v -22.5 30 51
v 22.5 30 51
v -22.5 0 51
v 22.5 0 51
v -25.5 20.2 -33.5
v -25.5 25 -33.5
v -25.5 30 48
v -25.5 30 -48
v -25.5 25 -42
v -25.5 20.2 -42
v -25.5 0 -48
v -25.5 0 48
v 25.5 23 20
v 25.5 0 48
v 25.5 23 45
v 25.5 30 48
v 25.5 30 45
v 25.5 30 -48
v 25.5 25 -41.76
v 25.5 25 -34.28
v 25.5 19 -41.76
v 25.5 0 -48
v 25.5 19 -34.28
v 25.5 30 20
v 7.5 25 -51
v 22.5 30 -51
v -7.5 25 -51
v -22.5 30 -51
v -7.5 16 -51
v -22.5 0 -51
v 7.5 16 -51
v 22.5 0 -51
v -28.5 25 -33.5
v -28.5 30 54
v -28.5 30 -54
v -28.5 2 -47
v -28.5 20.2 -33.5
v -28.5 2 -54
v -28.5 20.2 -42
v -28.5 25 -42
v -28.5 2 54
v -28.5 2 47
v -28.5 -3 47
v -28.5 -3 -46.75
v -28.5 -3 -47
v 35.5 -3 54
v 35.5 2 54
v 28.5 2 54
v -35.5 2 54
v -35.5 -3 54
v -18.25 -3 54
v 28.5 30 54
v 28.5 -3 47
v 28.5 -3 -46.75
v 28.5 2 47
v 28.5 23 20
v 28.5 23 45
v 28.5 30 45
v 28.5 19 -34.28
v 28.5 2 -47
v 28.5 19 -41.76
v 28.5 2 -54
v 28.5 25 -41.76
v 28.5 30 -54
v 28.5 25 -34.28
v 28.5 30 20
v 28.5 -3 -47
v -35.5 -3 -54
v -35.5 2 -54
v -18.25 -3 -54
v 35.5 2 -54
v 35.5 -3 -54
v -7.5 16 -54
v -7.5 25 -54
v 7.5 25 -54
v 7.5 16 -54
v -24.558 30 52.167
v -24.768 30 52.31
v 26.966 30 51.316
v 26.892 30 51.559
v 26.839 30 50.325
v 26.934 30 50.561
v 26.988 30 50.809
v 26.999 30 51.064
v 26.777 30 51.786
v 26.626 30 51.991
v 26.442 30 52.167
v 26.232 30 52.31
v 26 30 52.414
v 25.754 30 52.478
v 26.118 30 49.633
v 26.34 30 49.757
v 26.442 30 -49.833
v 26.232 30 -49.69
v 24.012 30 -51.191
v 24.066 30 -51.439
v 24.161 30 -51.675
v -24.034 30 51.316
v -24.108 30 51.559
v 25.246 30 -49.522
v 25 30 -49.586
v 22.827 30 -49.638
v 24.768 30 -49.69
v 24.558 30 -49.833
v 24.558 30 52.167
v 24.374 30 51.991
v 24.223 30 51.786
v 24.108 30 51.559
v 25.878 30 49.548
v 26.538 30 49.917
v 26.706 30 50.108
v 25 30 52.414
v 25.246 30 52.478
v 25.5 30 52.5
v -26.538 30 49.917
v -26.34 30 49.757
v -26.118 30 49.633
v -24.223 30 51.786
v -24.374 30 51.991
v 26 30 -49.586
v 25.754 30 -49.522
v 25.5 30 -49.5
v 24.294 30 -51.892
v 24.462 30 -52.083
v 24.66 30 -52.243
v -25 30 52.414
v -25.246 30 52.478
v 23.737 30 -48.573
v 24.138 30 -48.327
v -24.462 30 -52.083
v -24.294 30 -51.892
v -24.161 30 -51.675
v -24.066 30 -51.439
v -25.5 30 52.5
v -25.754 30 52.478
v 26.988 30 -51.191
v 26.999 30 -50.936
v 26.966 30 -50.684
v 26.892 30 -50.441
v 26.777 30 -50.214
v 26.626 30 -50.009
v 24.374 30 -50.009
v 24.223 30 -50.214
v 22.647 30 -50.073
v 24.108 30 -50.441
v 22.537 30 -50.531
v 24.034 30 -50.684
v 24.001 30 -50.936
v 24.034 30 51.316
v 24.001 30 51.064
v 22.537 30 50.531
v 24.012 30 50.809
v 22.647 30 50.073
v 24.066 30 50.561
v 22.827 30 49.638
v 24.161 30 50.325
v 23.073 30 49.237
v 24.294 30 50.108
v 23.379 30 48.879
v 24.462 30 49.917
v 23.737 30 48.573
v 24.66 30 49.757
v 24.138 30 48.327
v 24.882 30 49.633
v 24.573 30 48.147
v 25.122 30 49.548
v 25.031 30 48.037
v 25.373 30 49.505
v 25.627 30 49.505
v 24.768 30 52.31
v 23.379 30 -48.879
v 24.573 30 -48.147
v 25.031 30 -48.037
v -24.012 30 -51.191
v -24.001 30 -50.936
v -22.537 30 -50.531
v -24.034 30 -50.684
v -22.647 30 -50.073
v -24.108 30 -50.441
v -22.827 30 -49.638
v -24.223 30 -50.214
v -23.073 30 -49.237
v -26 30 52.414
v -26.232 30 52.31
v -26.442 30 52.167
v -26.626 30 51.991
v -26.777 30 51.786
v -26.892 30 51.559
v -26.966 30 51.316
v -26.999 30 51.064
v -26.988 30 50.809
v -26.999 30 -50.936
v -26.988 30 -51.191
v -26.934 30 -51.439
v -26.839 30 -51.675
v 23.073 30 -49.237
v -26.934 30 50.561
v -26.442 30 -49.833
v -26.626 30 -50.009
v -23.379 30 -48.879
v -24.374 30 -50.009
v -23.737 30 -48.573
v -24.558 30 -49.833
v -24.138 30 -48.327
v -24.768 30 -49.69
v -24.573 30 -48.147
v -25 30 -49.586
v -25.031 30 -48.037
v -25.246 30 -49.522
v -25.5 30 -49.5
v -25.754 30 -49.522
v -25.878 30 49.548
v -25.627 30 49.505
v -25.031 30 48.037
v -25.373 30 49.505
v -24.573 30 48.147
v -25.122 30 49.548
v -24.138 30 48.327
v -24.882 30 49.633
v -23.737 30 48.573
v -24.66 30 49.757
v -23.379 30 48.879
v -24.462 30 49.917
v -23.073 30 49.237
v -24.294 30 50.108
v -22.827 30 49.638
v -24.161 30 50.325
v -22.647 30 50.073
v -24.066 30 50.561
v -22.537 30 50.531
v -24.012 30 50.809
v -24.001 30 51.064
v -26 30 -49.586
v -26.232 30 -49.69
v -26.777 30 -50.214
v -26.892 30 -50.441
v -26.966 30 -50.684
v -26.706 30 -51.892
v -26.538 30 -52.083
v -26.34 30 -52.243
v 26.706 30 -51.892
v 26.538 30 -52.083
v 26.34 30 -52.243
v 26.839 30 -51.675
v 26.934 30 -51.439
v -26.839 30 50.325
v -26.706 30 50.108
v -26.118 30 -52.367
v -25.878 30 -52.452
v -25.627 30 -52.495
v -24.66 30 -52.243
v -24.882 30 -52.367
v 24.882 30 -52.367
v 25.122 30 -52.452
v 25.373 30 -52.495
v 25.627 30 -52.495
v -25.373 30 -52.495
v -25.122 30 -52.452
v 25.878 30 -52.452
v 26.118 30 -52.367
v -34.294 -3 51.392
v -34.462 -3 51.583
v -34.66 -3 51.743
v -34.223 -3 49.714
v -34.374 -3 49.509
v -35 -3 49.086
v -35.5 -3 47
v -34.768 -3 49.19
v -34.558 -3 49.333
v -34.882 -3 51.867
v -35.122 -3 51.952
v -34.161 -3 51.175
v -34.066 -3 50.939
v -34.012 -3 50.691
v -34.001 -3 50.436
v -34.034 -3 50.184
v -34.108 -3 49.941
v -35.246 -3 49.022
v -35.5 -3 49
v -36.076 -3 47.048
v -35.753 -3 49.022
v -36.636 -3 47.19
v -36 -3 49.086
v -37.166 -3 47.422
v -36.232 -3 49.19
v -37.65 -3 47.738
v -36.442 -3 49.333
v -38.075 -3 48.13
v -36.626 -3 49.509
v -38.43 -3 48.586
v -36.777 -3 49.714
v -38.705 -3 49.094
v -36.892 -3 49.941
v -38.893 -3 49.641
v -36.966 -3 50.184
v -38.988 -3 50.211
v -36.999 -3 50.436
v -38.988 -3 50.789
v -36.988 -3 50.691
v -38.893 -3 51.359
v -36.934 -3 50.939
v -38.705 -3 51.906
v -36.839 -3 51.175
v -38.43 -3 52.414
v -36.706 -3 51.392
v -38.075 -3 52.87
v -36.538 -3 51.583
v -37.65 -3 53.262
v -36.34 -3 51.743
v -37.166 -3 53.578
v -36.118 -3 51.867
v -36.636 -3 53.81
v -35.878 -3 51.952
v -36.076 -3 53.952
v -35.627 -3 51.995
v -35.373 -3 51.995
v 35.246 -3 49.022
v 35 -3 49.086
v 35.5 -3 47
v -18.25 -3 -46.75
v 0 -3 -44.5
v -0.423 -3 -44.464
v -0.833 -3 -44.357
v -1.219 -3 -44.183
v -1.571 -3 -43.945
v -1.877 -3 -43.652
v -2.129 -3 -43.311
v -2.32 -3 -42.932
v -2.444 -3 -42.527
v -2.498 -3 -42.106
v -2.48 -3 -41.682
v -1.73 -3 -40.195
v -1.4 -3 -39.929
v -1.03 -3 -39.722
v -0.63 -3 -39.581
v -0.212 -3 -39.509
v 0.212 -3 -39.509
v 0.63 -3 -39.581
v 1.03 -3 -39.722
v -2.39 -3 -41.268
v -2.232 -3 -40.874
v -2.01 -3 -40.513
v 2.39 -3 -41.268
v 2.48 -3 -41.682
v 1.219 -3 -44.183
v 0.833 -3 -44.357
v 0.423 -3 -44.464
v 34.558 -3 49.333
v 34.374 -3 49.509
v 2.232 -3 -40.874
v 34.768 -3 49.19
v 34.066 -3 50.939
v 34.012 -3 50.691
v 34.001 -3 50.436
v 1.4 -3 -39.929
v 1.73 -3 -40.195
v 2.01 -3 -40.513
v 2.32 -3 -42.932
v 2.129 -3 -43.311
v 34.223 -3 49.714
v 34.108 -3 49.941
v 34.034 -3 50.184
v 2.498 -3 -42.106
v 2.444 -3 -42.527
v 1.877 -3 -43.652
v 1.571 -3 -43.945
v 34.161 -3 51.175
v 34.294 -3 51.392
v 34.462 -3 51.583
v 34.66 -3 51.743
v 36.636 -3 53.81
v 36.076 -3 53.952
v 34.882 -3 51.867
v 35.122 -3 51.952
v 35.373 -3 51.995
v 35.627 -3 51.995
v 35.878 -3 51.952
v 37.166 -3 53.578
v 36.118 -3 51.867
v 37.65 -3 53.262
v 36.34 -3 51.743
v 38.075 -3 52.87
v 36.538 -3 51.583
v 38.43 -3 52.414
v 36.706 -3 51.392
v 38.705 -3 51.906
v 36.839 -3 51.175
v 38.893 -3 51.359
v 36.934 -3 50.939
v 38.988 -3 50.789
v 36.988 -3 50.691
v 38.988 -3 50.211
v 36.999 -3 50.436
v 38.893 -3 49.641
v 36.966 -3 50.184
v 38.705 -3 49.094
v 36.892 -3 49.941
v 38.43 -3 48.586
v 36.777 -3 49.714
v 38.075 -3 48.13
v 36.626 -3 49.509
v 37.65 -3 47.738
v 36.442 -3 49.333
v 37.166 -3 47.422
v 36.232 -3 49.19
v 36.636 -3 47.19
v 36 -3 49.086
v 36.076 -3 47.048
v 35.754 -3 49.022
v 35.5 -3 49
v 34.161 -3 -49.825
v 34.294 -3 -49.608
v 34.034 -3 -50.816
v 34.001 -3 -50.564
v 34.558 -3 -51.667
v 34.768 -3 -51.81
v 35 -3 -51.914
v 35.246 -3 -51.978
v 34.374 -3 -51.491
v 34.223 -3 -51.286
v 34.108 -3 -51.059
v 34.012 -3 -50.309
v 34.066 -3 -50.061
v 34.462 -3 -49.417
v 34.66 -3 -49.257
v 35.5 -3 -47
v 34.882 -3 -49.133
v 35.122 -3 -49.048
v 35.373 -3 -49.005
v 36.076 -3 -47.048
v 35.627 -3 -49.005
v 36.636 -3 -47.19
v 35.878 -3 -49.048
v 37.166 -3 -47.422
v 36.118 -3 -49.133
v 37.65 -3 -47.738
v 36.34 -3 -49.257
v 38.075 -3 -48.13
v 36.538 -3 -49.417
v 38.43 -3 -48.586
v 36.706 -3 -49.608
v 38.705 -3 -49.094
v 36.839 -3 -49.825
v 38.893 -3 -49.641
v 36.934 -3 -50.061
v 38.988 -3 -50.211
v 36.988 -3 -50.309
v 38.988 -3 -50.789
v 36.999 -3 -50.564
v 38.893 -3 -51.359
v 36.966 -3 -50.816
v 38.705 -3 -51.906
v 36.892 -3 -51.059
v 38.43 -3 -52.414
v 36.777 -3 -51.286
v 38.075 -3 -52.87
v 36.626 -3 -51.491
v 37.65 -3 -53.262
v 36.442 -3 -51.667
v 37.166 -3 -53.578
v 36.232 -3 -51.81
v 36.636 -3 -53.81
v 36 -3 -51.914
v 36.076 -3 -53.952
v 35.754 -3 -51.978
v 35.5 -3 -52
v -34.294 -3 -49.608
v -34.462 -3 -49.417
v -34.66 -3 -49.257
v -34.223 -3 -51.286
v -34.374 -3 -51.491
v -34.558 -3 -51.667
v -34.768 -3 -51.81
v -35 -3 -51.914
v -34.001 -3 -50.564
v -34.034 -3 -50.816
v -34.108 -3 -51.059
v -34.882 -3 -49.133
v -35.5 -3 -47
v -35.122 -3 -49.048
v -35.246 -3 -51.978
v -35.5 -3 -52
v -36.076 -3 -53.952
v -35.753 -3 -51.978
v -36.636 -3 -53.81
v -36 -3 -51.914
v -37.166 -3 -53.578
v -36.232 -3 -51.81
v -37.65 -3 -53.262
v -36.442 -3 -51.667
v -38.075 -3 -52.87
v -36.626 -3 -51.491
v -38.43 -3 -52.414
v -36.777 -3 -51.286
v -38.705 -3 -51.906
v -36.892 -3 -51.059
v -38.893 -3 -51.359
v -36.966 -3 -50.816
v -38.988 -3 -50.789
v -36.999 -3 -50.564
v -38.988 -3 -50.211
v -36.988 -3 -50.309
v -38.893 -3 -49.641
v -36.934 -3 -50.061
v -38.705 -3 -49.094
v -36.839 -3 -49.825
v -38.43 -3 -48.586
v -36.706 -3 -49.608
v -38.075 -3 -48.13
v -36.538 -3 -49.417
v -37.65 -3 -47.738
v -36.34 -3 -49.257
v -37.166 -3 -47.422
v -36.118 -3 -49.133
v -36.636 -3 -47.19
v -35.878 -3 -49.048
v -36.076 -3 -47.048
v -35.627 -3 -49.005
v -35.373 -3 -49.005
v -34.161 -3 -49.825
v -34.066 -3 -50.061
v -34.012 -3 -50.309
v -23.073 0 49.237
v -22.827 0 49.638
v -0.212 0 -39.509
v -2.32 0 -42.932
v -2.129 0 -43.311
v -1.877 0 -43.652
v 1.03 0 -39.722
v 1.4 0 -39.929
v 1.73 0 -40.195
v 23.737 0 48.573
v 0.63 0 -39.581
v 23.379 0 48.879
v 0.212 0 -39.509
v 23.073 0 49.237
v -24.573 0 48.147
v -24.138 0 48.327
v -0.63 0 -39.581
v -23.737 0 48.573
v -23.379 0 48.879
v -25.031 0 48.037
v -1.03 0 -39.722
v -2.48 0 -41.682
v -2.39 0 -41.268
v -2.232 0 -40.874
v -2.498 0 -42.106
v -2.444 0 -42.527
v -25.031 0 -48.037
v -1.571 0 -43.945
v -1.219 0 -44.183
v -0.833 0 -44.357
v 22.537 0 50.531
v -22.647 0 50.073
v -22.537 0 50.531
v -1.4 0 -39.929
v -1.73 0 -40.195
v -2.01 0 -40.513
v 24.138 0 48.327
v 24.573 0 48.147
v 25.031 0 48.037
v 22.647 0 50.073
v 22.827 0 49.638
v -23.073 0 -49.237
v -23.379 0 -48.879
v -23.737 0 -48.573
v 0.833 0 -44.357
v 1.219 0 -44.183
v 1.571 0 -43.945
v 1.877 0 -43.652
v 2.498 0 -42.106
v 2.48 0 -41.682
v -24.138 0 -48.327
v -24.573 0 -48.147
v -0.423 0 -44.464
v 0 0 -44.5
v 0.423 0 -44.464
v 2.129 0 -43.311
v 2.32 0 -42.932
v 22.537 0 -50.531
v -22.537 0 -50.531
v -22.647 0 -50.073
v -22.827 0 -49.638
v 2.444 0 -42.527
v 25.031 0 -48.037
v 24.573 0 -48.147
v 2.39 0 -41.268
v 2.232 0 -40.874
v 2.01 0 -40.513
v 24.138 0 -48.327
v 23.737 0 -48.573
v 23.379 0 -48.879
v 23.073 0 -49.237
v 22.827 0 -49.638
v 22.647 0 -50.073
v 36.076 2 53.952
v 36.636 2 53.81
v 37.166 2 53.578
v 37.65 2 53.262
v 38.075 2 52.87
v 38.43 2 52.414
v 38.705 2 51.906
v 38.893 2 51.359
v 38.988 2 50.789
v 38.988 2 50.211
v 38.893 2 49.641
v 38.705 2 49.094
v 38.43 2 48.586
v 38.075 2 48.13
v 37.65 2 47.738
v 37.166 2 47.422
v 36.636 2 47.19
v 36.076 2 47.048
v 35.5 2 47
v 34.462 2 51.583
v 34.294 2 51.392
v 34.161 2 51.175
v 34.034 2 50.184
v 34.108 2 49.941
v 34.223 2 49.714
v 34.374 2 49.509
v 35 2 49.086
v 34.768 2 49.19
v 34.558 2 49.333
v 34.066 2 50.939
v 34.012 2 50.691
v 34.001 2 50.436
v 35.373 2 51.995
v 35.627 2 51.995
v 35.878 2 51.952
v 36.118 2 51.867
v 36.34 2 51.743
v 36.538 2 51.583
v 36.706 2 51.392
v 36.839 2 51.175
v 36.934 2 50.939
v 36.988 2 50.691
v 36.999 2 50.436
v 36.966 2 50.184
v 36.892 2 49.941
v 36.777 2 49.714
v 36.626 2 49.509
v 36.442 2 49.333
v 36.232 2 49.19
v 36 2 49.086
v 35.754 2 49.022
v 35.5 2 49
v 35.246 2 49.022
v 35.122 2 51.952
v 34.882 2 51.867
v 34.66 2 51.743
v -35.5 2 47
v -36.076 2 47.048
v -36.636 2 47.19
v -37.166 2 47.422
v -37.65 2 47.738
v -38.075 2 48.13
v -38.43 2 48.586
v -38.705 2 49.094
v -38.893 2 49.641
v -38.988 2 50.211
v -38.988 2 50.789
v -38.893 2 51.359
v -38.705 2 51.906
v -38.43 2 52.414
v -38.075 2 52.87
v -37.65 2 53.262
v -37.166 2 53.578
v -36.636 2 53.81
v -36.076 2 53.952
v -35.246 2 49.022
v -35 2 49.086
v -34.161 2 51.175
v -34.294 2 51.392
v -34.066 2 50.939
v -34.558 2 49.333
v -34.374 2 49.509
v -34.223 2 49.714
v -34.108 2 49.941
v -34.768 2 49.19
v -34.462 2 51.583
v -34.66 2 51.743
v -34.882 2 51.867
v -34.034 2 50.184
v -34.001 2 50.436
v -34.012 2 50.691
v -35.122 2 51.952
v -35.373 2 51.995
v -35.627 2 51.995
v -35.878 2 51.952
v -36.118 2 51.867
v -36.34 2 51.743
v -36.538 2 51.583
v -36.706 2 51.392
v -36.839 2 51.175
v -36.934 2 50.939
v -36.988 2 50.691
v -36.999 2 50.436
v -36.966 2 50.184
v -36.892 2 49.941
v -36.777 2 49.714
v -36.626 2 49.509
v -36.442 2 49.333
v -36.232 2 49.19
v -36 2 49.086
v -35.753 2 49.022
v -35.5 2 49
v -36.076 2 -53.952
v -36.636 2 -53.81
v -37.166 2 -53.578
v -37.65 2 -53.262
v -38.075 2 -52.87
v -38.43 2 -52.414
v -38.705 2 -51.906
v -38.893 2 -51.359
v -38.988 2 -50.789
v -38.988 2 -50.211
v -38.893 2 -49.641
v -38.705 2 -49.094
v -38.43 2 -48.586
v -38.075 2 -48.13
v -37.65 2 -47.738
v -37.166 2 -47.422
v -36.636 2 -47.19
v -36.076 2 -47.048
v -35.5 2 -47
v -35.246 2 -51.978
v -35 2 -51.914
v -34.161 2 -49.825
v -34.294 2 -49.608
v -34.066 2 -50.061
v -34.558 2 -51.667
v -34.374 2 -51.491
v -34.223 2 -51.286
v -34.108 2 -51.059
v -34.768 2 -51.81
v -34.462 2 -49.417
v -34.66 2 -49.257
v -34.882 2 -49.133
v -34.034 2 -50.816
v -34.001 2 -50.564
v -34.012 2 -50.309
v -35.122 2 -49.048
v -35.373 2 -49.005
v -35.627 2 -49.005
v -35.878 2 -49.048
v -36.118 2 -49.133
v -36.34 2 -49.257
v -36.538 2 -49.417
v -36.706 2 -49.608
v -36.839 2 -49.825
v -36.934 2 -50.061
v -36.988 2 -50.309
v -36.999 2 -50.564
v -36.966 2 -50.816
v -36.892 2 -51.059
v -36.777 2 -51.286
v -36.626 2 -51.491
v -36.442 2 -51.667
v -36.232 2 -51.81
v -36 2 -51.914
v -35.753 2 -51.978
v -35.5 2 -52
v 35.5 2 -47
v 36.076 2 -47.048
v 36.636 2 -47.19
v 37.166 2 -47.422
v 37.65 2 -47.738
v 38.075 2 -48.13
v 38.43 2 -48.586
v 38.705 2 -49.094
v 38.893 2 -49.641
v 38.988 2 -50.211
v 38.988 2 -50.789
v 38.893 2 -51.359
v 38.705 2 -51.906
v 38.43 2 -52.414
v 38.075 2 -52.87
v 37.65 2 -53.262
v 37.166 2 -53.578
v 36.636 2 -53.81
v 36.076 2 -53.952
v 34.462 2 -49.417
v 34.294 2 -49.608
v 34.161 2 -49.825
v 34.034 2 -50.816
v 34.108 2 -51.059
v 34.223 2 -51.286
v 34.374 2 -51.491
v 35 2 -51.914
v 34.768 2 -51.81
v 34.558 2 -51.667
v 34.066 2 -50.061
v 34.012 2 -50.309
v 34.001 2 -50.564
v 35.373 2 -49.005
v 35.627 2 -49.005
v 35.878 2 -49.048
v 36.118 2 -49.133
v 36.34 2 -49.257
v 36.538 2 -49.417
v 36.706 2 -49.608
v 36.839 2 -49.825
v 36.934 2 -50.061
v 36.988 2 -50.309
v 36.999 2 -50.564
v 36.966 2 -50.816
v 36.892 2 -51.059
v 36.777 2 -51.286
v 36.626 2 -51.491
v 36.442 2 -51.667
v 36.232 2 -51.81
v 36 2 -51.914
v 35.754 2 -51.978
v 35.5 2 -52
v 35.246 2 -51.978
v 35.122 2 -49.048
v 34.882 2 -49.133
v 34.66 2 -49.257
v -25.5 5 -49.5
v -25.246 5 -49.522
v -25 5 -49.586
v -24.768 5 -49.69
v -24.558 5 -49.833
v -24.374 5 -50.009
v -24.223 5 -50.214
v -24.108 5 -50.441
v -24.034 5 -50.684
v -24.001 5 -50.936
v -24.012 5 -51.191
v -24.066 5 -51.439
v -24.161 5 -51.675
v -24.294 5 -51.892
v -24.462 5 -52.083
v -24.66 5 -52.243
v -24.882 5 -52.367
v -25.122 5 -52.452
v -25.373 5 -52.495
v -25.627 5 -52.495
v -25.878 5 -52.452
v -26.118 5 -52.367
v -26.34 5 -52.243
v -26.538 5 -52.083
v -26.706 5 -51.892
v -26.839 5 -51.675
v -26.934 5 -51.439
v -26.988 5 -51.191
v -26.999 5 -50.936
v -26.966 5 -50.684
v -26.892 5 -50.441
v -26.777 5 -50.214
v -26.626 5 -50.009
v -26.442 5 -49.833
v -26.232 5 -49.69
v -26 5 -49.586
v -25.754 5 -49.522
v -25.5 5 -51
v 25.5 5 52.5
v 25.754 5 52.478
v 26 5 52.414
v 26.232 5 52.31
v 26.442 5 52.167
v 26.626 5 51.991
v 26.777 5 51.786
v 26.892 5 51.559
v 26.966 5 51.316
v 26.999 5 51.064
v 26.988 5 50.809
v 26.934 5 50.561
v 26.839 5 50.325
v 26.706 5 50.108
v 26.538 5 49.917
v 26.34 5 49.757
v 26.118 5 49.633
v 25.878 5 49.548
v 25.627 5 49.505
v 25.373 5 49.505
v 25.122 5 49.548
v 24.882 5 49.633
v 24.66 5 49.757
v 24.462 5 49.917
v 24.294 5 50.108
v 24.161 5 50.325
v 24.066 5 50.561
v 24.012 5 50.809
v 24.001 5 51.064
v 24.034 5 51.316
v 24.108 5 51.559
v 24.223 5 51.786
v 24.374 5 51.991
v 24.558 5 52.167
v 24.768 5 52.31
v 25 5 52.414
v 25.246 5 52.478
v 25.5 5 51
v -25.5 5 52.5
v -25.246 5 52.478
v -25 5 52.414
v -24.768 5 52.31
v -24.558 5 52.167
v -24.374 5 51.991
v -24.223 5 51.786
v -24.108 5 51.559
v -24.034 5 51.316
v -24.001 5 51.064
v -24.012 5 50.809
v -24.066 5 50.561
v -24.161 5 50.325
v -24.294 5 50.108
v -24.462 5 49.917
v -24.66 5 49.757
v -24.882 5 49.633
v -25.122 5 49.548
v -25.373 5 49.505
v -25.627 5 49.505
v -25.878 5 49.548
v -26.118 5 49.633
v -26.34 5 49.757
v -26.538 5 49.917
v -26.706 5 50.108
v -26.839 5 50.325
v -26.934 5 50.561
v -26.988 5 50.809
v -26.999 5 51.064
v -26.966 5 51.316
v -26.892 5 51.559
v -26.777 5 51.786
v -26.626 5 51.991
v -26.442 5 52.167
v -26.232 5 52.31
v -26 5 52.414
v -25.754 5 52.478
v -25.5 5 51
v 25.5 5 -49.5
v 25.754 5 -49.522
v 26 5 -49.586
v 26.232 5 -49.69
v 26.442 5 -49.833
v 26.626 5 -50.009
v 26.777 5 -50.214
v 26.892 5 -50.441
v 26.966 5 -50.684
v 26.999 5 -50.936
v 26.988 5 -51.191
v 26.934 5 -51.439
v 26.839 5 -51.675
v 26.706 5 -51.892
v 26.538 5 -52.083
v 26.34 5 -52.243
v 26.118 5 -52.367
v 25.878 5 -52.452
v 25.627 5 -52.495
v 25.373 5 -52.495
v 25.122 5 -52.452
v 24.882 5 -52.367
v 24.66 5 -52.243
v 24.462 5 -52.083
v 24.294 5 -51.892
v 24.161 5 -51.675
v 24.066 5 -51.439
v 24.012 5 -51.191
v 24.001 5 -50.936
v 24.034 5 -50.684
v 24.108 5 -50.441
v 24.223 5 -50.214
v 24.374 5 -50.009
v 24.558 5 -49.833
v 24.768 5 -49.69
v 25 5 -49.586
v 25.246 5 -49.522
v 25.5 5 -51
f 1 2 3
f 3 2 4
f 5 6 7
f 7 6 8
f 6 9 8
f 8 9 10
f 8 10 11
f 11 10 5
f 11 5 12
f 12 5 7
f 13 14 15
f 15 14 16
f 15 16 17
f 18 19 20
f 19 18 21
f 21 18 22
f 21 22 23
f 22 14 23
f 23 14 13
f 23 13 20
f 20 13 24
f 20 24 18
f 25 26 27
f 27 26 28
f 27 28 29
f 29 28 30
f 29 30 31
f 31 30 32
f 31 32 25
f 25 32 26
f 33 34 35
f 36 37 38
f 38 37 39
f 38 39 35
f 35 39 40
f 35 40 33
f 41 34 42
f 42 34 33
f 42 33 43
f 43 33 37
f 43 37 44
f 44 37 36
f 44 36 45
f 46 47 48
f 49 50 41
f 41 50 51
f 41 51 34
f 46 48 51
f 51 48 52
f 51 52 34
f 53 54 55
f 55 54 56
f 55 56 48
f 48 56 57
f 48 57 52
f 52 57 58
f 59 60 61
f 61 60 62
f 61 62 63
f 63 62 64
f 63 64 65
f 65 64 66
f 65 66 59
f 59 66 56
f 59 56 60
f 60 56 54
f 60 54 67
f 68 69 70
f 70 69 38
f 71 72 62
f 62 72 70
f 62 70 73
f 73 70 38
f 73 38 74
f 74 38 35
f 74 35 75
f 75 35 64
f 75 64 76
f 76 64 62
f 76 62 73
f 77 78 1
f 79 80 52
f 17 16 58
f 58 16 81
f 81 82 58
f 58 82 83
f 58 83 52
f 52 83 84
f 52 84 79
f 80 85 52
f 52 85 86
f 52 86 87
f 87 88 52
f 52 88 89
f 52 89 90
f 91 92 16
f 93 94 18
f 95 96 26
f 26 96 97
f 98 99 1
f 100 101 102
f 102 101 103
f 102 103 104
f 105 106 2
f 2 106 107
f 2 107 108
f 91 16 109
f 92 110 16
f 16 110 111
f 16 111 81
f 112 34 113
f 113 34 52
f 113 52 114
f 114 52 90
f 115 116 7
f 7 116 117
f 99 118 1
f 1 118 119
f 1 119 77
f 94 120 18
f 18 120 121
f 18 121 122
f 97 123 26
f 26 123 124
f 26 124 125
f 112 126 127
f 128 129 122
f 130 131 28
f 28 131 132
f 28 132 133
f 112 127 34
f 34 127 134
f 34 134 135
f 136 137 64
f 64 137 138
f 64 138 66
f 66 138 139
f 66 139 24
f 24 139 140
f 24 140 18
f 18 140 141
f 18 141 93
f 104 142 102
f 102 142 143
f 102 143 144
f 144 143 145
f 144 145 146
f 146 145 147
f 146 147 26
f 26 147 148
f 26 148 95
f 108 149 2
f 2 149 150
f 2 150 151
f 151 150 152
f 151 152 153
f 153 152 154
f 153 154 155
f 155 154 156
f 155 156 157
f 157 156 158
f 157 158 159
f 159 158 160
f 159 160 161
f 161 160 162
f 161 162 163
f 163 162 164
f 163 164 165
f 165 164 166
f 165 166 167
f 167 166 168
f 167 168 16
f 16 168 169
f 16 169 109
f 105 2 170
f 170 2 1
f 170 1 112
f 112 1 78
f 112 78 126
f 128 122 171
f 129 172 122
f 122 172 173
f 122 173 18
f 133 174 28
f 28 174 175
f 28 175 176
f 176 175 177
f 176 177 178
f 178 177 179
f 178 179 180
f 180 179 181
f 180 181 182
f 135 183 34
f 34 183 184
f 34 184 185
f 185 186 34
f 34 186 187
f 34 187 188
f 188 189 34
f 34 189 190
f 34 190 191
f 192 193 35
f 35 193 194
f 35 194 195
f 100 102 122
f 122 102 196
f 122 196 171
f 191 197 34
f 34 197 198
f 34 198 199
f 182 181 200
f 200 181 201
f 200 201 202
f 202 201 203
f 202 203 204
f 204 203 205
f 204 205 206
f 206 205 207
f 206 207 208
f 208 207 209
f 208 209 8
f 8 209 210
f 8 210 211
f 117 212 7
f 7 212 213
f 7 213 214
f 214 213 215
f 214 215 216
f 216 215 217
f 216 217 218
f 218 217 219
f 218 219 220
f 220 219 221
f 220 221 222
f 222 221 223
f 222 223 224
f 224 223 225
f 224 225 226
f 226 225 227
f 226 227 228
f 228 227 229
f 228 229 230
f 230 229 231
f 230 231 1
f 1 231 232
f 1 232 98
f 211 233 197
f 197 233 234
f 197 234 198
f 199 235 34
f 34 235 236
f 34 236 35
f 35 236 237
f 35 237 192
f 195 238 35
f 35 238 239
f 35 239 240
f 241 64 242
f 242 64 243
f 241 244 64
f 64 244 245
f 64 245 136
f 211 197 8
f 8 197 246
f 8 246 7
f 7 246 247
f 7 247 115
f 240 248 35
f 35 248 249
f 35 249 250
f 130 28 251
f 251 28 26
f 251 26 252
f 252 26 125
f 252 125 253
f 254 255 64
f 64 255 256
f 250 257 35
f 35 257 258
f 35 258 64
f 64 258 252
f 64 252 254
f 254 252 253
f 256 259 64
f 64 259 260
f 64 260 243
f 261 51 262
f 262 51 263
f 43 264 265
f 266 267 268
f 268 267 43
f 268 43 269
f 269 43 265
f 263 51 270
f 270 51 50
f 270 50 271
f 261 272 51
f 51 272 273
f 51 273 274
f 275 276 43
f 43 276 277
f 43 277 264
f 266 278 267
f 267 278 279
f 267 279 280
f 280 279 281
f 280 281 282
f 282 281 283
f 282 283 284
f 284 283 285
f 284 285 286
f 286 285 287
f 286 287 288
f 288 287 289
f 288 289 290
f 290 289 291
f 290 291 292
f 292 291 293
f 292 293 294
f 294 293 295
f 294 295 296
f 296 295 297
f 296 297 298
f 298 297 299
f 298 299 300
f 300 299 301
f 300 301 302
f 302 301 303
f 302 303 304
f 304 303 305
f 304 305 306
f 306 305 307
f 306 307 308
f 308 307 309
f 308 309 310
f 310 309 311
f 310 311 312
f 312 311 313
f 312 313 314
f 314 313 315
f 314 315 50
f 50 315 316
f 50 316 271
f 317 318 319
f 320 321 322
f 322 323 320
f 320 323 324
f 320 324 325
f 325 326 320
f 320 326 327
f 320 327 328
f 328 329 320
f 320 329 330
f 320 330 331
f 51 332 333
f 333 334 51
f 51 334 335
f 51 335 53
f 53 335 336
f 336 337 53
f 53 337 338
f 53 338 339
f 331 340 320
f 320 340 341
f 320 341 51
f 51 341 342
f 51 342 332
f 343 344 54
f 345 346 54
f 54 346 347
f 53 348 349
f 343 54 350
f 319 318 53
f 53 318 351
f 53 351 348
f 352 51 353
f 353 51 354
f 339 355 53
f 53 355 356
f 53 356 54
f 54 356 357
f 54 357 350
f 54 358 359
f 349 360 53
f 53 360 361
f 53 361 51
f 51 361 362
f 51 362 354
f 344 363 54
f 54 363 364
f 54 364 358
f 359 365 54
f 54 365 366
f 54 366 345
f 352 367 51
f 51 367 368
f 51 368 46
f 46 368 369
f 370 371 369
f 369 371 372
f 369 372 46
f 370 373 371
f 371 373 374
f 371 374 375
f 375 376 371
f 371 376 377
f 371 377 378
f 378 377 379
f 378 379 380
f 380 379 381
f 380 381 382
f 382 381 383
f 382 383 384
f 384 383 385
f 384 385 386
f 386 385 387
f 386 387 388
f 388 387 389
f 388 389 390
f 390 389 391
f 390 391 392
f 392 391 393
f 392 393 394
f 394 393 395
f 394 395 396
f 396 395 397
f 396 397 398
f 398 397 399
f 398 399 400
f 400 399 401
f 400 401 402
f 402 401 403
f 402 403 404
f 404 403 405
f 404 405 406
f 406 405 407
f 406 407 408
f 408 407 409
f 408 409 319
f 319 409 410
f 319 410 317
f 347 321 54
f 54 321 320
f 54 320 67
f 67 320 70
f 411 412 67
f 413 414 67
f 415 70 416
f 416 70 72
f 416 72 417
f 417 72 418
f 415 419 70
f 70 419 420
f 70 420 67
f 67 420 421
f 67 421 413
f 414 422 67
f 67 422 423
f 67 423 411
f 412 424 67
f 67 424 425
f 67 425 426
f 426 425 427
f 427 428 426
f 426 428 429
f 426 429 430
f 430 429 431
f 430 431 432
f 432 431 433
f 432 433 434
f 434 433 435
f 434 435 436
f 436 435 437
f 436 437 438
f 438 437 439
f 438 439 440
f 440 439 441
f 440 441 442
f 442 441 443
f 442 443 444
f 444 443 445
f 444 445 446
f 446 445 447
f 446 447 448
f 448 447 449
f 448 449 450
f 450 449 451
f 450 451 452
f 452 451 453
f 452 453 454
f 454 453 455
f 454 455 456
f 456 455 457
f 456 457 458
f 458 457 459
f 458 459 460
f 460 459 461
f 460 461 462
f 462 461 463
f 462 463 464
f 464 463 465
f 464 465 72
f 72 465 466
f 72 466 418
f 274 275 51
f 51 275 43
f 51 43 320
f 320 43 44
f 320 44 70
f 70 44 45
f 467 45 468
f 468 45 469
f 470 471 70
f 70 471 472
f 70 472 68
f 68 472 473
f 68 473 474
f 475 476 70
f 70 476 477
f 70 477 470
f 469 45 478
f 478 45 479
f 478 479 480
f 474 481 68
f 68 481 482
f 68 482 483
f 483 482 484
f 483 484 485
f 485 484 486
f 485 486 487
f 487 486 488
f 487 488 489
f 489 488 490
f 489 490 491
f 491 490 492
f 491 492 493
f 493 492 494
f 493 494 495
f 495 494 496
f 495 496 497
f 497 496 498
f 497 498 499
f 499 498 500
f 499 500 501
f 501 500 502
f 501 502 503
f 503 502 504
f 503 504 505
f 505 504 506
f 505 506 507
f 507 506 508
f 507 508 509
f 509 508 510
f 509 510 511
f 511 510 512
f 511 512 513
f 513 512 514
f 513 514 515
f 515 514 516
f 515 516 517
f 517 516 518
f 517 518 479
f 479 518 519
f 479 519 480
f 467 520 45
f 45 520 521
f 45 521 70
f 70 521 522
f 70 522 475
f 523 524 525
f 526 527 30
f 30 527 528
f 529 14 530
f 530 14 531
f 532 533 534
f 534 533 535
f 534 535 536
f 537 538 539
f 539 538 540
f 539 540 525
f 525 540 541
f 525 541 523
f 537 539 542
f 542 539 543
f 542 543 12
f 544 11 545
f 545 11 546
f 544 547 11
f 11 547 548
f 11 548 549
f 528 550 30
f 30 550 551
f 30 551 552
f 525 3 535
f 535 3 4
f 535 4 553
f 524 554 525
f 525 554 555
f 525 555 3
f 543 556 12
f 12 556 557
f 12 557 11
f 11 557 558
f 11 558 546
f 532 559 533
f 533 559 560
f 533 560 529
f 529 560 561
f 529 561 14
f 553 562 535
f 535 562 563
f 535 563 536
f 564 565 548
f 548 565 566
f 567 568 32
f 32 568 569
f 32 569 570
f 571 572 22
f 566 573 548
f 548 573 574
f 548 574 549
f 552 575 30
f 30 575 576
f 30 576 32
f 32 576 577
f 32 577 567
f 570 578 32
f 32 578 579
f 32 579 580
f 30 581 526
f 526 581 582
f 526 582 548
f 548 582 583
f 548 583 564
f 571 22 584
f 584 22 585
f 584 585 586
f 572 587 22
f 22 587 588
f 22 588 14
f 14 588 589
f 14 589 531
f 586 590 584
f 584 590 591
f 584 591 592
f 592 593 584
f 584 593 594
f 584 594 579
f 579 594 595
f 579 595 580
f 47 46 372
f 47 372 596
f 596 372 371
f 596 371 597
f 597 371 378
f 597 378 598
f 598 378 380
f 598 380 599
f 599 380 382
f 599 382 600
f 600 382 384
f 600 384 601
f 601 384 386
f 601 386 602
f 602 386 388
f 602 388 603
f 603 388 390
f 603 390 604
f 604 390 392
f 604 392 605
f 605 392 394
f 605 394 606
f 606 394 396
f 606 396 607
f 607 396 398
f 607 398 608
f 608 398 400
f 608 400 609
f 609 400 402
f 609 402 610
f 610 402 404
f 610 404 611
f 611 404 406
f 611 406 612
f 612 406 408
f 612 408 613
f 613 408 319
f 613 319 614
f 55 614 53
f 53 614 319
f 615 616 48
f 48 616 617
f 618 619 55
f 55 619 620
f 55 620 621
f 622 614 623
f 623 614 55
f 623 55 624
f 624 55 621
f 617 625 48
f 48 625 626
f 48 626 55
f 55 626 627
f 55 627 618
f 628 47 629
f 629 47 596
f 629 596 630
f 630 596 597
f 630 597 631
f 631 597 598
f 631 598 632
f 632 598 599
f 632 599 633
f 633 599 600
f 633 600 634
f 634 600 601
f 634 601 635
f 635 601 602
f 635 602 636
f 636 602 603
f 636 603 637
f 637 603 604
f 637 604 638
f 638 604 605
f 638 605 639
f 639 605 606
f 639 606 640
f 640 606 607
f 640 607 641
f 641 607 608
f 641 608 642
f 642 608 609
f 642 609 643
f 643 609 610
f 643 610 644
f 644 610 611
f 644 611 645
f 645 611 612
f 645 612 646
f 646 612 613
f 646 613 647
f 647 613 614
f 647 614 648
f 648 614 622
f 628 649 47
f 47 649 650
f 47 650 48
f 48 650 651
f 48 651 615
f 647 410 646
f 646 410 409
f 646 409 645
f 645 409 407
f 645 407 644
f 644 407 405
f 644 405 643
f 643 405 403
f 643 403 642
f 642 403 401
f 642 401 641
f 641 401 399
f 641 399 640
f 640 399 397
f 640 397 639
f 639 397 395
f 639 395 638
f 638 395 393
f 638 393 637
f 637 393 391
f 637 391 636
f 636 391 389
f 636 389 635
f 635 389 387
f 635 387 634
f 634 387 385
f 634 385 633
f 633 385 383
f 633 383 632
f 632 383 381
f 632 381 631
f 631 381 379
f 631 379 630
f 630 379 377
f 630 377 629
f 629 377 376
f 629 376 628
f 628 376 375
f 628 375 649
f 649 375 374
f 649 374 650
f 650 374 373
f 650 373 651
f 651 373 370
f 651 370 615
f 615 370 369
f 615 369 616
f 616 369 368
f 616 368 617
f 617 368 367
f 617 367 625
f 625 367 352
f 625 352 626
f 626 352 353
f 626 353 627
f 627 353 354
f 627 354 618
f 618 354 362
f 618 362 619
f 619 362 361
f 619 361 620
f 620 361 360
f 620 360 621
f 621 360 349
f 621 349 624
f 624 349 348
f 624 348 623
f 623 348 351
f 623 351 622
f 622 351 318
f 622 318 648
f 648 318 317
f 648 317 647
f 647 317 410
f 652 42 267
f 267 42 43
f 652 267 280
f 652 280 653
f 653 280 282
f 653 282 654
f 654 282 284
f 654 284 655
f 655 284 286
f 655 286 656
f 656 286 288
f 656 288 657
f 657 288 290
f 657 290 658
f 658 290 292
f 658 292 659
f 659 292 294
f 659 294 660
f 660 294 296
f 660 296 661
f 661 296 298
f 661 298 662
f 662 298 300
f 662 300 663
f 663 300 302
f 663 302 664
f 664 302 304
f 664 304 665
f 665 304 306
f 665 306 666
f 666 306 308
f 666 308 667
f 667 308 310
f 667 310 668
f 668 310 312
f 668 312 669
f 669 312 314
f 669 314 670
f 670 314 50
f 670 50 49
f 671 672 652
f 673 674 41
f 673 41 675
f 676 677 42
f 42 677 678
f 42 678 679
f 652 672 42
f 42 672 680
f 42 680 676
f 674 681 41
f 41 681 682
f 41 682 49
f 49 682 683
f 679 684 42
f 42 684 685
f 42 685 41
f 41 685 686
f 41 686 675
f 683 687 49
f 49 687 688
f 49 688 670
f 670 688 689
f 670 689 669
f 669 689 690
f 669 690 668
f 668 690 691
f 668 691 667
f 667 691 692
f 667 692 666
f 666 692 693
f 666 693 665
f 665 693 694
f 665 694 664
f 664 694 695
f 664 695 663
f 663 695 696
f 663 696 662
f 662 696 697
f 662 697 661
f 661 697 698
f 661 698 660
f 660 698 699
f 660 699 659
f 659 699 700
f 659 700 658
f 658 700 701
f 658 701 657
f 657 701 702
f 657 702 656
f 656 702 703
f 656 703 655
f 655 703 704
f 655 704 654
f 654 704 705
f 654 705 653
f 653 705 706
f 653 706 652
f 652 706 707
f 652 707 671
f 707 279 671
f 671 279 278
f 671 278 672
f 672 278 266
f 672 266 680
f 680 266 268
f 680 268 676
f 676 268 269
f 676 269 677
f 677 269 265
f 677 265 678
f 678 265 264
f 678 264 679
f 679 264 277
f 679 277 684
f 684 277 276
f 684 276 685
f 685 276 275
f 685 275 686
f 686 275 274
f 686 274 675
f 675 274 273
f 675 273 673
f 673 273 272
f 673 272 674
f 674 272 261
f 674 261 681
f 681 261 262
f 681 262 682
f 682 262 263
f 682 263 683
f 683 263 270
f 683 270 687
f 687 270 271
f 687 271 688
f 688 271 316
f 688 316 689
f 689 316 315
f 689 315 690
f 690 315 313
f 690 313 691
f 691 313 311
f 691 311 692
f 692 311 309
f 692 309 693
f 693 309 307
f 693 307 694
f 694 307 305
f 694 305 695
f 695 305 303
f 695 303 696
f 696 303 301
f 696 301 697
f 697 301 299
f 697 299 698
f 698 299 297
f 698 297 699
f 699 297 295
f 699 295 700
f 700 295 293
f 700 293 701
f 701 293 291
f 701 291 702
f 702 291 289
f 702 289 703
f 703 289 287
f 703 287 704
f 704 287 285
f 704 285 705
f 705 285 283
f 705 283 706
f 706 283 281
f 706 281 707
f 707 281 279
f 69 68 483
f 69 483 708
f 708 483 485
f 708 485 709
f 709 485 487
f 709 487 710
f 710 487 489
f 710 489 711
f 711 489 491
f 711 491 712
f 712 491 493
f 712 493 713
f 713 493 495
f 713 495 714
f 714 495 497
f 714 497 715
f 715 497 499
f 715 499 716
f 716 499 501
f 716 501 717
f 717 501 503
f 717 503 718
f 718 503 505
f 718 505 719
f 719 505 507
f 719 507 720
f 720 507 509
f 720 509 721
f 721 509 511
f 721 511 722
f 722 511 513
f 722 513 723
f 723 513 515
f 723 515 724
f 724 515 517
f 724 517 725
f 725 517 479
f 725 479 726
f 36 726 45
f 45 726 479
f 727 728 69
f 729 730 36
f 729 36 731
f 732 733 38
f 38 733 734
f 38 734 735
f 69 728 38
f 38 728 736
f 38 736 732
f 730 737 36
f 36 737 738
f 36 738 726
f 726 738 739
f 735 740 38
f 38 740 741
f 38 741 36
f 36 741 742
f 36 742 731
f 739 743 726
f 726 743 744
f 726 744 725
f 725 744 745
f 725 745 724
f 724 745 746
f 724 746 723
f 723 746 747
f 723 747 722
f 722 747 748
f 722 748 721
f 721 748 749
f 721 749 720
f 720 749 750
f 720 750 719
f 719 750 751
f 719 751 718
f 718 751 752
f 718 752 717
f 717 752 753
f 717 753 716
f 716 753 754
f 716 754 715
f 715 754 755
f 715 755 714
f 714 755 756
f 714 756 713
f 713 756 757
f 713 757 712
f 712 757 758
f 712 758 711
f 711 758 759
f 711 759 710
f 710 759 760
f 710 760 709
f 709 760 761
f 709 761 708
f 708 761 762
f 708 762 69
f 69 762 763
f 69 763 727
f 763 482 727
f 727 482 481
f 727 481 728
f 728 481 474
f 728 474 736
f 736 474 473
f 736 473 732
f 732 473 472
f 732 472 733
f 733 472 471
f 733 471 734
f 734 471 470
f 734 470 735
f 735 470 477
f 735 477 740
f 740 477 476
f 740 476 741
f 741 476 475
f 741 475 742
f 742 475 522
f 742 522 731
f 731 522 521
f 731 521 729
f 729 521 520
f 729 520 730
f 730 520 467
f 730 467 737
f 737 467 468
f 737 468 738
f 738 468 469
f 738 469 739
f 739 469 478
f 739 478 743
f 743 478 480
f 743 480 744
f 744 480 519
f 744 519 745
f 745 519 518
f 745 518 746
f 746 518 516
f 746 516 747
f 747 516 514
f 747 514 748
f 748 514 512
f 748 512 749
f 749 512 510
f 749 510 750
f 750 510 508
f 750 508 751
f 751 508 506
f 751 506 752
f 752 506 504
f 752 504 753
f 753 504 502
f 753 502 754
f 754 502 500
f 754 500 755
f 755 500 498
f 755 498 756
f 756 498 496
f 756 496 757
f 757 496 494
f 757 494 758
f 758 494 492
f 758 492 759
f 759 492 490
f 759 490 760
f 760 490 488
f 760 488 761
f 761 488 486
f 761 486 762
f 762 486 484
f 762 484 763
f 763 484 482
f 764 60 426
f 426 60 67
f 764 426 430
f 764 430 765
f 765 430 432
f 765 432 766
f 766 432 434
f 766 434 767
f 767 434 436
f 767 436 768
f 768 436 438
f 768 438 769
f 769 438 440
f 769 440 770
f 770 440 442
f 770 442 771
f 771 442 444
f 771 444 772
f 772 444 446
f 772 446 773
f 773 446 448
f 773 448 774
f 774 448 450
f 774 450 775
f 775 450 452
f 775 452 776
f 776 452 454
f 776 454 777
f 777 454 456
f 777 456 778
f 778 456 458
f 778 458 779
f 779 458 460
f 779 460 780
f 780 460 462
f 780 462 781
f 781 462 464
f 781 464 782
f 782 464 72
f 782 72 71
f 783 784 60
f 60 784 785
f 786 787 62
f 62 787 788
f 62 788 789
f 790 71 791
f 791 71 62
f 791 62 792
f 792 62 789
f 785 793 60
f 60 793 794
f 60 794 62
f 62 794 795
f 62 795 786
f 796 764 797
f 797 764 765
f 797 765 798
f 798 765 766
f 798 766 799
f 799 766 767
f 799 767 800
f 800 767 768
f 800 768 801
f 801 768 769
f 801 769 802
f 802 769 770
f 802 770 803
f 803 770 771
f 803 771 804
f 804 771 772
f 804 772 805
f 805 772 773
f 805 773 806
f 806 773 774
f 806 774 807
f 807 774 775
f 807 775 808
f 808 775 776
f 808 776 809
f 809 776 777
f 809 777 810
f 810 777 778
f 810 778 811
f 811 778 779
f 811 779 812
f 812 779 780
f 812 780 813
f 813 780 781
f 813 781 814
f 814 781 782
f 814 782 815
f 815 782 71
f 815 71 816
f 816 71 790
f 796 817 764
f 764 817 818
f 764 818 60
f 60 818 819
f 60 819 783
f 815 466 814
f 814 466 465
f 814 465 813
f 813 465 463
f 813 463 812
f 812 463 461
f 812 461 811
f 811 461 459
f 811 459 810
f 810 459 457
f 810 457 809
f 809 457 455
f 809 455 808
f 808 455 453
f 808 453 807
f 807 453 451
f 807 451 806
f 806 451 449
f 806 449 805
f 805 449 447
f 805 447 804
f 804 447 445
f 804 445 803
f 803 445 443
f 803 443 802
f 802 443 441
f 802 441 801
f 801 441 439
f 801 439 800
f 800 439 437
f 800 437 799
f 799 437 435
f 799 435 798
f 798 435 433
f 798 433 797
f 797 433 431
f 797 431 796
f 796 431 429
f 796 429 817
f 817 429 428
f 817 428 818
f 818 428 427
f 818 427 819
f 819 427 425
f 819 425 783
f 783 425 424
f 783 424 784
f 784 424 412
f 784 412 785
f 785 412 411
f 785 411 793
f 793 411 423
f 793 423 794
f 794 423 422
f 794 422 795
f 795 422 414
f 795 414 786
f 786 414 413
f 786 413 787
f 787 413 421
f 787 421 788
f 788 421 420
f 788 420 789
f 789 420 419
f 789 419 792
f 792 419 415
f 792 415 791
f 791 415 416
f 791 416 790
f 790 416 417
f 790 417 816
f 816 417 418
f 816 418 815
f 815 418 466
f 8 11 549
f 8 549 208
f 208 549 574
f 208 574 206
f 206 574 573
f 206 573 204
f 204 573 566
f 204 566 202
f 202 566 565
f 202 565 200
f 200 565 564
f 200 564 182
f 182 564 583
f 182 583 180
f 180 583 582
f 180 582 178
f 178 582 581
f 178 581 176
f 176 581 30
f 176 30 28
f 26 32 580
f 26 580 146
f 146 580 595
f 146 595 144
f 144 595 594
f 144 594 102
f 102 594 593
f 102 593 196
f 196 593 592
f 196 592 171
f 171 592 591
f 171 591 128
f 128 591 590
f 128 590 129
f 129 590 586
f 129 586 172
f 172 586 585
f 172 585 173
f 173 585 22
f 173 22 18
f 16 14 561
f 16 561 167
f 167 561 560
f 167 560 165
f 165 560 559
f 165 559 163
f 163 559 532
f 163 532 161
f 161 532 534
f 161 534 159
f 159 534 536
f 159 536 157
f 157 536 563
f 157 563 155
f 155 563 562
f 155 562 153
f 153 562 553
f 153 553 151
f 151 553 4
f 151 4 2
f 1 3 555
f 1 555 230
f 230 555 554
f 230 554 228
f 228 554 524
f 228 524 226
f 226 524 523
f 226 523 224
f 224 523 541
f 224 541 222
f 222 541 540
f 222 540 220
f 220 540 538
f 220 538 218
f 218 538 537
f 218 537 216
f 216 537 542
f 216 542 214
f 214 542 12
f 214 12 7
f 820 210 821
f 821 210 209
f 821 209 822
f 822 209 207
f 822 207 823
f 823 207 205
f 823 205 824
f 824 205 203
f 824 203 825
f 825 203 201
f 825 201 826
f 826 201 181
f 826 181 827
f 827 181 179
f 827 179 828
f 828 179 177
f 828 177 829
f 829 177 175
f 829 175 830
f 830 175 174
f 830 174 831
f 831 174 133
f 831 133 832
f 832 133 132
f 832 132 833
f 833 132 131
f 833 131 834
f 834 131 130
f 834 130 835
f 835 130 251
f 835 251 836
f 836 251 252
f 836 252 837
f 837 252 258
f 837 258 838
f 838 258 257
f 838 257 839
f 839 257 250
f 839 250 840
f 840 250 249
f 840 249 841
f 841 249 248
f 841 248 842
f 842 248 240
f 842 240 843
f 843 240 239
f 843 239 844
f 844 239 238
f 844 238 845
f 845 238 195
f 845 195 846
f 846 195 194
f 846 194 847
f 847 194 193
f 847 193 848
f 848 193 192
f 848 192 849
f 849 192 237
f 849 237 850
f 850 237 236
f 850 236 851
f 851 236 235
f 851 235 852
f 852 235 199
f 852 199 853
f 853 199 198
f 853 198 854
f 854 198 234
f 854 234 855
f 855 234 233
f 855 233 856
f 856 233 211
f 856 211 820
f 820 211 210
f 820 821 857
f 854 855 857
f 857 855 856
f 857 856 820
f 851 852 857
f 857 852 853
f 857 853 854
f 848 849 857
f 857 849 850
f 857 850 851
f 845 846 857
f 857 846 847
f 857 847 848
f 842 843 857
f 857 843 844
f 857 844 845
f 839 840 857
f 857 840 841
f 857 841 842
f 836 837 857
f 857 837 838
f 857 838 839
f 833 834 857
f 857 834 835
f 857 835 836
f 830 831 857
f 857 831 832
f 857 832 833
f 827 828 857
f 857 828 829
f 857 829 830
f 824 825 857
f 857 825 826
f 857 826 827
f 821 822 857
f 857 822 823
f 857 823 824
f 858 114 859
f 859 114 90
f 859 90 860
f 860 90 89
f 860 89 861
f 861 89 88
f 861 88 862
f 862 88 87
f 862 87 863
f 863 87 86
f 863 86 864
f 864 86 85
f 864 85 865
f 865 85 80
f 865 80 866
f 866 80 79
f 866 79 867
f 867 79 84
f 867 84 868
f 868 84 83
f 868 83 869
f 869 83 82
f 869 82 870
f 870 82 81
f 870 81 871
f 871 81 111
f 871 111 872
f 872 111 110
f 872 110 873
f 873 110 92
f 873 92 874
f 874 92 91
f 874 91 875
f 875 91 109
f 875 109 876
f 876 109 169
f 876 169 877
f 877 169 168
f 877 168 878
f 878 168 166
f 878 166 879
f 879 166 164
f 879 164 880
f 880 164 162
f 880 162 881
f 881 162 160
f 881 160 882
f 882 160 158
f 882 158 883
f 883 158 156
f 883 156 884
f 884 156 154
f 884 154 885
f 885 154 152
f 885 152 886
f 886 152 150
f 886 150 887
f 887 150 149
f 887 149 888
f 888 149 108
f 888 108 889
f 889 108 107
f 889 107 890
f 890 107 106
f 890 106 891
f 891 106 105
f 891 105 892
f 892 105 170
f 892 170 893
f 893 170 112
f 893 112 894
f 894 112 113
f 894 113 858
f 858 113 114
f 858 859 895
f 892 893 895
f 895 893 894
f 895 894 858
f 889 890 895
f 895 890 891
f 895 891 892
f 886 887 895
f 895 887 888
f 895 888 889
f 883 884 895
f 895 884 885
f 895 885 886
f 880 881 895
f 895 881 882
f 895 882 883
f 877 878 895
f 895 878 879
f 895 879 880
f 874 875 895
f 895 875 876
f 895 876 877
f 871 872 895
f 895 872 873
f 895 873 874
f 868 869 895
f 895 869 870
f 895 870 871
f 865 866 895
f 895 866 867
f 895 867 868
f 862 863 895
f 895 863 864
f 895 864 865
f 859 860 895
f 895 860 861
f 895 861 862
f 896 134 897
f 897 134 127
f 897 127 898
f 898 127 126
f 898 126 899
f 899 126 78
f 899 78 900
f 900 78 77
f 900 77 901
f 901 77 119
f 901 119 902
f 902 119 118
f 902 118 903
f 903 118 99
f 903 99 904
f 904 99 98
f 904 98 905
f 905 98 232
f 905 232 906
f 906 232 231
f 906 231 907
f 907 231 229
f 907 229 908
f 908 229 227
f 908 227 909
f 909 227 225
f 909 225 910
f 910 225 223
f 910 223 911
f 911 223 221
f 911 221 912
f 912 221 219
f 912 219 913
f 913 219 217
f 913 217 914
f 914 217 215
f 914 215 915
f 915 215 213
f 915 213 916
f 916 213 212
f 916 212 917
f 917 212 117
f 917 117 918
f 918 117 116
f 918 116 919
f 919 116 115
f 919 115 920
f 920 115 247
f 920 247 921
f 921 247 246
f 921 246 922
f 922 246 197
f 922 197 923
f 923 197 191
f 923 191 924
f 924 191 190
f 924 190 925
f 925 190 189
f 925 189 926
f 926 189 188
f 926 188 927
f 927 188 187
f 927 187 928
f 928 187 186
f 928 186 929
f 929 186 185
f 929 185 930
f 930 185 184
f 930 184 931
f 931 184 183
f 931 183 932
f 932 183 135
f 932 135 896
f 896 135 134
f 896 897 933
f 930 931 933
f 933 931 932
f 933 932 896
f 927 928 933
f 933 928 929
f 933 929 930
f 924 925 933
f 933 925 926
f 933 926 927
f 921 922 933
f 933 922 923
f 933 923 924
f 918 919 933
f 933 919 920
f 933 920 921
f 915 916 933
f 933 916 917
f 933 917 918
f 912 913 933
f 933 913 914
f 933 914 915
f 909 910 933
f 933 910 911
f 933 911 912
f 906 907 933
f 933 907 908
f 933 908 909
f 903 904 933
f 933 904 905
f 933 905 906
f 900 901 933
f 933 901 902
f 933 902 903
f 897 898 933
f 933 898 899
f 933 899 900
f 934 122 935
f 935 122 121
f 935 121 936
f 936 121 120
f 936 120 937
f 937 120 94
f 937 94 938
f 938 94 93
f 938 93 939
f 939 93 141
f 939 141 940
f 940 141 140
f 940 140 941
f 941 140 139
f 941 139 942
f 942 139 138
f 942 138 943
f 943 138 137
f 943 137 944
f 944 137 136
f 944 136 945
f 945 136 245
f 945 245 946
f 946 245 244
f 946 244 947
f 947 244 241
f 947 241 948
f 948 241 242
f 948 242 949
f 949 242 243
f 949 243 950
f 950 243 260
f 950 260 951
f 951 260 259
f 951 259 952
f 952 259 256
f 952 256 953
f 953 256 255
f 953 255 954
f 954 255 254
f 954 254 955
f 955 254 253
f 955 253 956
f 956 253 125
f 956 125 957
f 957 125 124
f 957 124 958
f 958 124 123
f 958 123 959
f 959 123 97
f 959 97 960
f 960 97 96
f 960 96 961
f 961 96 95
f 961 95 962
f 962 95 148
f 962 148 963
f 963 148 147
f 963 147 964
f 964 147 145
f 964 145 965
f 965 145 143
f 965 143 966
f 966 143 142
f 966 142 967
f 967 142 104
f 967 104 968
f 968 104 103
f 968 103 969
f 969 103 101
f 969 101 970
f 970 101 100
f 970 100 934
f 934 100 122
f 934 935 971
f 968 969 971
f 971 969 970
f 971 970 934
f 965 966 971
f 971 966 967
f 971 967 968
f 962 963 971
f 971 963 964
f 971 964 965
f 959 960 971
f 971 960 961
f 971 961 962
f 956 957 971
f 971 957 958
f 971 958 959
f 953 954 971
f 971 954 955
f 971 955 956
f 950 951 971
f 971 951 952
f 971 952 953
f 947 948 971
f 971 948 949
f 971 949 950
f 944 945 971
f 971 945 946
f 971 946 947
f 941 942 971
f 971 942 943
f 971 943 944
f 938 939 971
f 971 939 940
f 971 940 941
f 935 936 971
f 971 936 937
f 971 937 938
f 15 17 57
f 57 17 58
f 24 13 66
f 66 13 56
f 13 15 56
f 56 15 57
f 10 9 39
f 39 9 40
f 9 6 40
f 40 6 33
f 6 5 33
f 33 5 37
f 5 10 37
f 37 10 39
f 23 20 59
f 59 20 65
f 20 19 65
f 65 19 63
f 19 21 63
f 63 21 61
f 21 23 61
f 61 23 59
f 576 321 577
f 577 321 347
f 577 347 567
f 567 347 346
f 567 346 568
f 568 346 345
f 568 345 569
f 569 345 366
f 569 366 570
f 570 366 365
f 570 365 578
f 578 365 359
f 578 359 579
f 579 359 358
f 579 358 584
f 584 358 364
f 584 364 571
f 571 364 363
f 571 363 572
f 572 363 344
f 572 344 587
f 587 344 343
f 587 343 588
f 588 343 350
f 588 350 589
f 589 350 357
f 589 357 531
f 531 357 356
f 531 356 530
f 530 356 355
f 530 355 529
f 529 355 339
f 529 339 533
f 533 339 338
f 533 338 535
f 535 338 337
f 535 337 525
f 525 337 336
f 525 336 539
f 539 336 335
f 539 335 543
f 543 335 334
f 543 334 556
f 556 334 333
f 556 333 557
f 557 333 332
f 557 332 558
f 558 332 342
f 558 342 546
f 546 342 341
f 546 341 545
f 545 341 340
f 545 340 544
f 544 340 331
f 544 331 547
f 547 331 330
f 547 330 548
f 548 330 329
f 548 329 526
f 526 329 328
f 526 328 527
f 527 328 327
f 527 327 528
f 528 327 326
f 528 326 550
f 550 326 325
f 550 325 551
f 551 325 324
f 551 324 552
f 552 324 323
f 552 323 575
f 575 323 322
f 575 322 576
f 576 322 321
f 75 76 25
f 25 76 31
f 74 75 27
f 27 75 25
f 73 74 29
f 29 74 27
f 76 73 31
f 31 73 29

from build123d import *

# Parameters (mm, degrees)
CROQUIS1_W              = 51
CROQUIS1_H              = 102
SALIENTE_EXTRUIR1_DEPTH = 30
VACIADO1_T              = 3
CROQUIS5_R              = 1.5
SALIENTE_EXTRUIR2_DEPTH = 5
CROQUIS8_R              = 3
SALIENTE_EXTRUIR3_DEPTH = 30
CROQUIS10_R             = 1.5
CORTAR_EXTRUIR1_DEPTH   = 25
CROQUIS14_W             = 25
CROQUIS14_H             = 7
CORTAR_EXTRUIR3_DEPTH   = 3
CROQUIS15_W             = 8.5
CROQUIS15_H             = 4.8
CORTAR_EXTRUIR4_DEPTH   = 3
CROQUIS16_W             = 7.48
CROQUIS16_H             = 6
CORTAR_EXTRUIR5_DEPTH   = 3
CROQUIS17_R             = 2.5
CORTAR_EXTRUIR6_DEPTH   = 3
CROQUIS18_W             = 15
CROQUIS18_H             = 9
CORTAR_EXTRUIR7_DEPTH   = 54


with BuildPart() as part:
    # Croquis1 → Saliente-Extruir1 (new body)
    with BuildSketch(Plane(origin=(0, 0, 0), x_dir=(1, 0, 0), z_dir=(0, 1, 0))):
        Rectangle(CROQUIS1_W, CROQUIS1_H)
    extrude(amount=SALIENTE_EXTRUIR1_DEPTH)

    # Vaciado1
    vaciado1_openings = [part.faces().sort_by_distance(p)[0] for p in [
        (0, 30, 0),
    ]]
    offset(amount=VACIADO1_T, openings=vaciado1_openings, kind=Kind.INTERSECTION)

    # Croquis5 → Saliente-Extruir2 (add)
    # profile 1 of 4: a face of its own
    with BuildSketch(Plane.XZ.offset(3)):
        with BuildLine():
            Line((28.5, 54), (35.5, 54))
            ThreePointArc((35.5, 54), (38.999999038, 50.49999936), (35.49999872, 47))
            Line((35.49999872, 47), (28.5, 47))
            Line((28.5, 47), (28.5, 54))
        make_face()
        with Locations(Location((35.499999038, 50.5, 0), (0, 0, 270))):
            Circle(CROQUIS5_R, mode=Mode.SUBTRACT)
    # profile 2 of 4: a face of its own
    with BuildSketch(Plane.XZ.offset(3)):
        with BuildLine():
            Line((-28.5, 54), (-35.5, 54))
            ThreePointArc((-35.5, 54), (-38.999999054, 50.499999378), (-35.499998756, 47))
            Line((-35.499998756, 47), (-28.5, 47))
            Line((-28.5, 47), (-28.5, 54))
        make_face()
        with Locations(Location((-35.499999054, 50.5, 0), (0, 0, 270))):
            Circle(CROQUIS5_R, mode=Mode.SUBTRACT)
    # profile 3 of 4: a face of its own
    with BuildSketch(Plane.XZ.offset(3)):
        with BuildLine():
            Line((-28.5, -54), (-35.5, -54))
            ThreePointArc((-35.5, -54), (-38.999999038, -50.49999936), (-35.49999872, -47))
            Line((-35.49999872, -47), (-28.5, -47))
            Line((-28.5, -47), (-28.5, -54))
        make_face()
        with Locations(Location((-35.499999038, -50.5, 0), (0, 0, 270))):
            Circle(CROQUIS5_R, mode=Mode.SUBTRACT)
    # profile 4 of 4: a face of its own
    with BuildSketch(Plane.XZ.offset(3)):
        with BuildLine():
            Line((28.5, -54), (35.5, -54))
            ThreePointArc((35.5, -54), (38.999999041, -50.499999359), (35.499998718, -47))
            Line((35.499998718, -47), (28.5, -47))
            Line((28.5, -47), (28.5, -54))
        make_face()
        with Locations(Location((35.499999041, -50.5, 0), (0, 0, 270))):
            Circle(CROQUIS5_R, mode=Mode.SUBTRACT)
    extrude(amount=-SALIENTE_EXTRUIR2_DEPTH)

    # Croquis8 → Saliente-Extruir3 (add)
    with BuildSketch(Plane(origin=(0, 0, 0), x_dir=(1, 0, 0), z_dir=(0, 1, 0))):
        with Locations((-25.5, 51)):
            Circle(CROQUIS8_R)
        with Locations((25.5, 51)):
            Circle(CROQUIS8_R)
        with Locations((25.5, -51)):
            Circle(CROQUIS8_R)
        with Locations((-25.5, -51)):
            Circle(CROQUIS8_R)
    extrude(amount=SALIENTE_EXTRUIR3_DEPTH)

    # Croquis10 → Cortar-Extruir1 (cut)
    with BuildSketch(Plane(origin=(0, 30, 0), x_dir=(1, 0, 0), z_dir=(0, 1, 0))):
        with Locations(Location((-25.5, 51, 0), (0, 0, 270))):
            Circle(CROQUIS10_R)
        with Locations(Location((25.5, 51, 0), (0, 0, 270))):
            Circle(CROQUIS10_R)
        with Locations(Location((-25.5, -51, 0), (0, 0, 270))):
            Circle(CROQUIS10_R)
        with Locations(Location((25.5, -51, 0), (0, 0, 270))):
            Circle(CROQUIS10_R)
    extrude(amount=-CORTAR_EXTRUIR1_DEPTH, mode=Mode.SUBTRACT)

    # Croquis14 → Cortar-Extruir3 (cut)
    with BuildSketch(Plane(origin=(28.5, 0, 0), x_dir=(0, 0, -1), z_dir=(1, 0, 0))):
        with Locations((-32.5, 26.5)):
            Rectangle(CROQUIS14_W, CROQUIS14_H)
    extrude(amount=-CORTAR_EXTRUIR3_DEPTH, mode=Mode.SUBTRACT)

    # Croquis15 → Cortar-Extruir4 (cut)
    with BuildSketch(Plane.ZY.offset(28.5)):
        with Locations((-37.75, 22.6)):
            Rectangle(CROQUIS15_W, CROQUIS15_H)
    extrude(amount=-CORTAR_EXTRUIR4_DEPTH, mode=Mode.SUBTRACT)

    # Croquis16 → Cortar-Extruir5 (cut)
    with BuildSketch(Plane(origin=(28.5, 0, 0), x_dir=(0, 0, -1), z_dir=(1, 0, 0))):
        with Locations((38.02, 22)):
            Rectangle(CROQUIS16_W, CROQUIS16_H)
    extrude(amount=-CORTAR_EXTRUIR5_DEPTH, mode=Mode.SUBTRACT)

    # Croquis17 → Cortar-Extruir6 (cut)
    with BuildSketch(Plane.XZ.offset(3)):
        with Locations(Location((0, -42, 0), (0, 0, 270))):
            Circle(CROQUIS17_R)
    extrude(amount=-CORTAR_EXTRUIR6_DEPTH, mode=Mode.SUBTRACT)

    # Croquis18 → Cortar-Extruir7 (cut)
    with BuildSketch(Plane(origin=(0, 0, -54), x_dir=(-1, 0, 0), z_dir=(0, 0, -1))):
        with Locations((0, 20.5)):
            Rectangle(CROQUIS18_W, CROQUIS18_H)
    extrude(amount=-CORTAR_EXTRUIR7_DEPTH, mode=Mode.SUBTRACT)


solid = part.part
